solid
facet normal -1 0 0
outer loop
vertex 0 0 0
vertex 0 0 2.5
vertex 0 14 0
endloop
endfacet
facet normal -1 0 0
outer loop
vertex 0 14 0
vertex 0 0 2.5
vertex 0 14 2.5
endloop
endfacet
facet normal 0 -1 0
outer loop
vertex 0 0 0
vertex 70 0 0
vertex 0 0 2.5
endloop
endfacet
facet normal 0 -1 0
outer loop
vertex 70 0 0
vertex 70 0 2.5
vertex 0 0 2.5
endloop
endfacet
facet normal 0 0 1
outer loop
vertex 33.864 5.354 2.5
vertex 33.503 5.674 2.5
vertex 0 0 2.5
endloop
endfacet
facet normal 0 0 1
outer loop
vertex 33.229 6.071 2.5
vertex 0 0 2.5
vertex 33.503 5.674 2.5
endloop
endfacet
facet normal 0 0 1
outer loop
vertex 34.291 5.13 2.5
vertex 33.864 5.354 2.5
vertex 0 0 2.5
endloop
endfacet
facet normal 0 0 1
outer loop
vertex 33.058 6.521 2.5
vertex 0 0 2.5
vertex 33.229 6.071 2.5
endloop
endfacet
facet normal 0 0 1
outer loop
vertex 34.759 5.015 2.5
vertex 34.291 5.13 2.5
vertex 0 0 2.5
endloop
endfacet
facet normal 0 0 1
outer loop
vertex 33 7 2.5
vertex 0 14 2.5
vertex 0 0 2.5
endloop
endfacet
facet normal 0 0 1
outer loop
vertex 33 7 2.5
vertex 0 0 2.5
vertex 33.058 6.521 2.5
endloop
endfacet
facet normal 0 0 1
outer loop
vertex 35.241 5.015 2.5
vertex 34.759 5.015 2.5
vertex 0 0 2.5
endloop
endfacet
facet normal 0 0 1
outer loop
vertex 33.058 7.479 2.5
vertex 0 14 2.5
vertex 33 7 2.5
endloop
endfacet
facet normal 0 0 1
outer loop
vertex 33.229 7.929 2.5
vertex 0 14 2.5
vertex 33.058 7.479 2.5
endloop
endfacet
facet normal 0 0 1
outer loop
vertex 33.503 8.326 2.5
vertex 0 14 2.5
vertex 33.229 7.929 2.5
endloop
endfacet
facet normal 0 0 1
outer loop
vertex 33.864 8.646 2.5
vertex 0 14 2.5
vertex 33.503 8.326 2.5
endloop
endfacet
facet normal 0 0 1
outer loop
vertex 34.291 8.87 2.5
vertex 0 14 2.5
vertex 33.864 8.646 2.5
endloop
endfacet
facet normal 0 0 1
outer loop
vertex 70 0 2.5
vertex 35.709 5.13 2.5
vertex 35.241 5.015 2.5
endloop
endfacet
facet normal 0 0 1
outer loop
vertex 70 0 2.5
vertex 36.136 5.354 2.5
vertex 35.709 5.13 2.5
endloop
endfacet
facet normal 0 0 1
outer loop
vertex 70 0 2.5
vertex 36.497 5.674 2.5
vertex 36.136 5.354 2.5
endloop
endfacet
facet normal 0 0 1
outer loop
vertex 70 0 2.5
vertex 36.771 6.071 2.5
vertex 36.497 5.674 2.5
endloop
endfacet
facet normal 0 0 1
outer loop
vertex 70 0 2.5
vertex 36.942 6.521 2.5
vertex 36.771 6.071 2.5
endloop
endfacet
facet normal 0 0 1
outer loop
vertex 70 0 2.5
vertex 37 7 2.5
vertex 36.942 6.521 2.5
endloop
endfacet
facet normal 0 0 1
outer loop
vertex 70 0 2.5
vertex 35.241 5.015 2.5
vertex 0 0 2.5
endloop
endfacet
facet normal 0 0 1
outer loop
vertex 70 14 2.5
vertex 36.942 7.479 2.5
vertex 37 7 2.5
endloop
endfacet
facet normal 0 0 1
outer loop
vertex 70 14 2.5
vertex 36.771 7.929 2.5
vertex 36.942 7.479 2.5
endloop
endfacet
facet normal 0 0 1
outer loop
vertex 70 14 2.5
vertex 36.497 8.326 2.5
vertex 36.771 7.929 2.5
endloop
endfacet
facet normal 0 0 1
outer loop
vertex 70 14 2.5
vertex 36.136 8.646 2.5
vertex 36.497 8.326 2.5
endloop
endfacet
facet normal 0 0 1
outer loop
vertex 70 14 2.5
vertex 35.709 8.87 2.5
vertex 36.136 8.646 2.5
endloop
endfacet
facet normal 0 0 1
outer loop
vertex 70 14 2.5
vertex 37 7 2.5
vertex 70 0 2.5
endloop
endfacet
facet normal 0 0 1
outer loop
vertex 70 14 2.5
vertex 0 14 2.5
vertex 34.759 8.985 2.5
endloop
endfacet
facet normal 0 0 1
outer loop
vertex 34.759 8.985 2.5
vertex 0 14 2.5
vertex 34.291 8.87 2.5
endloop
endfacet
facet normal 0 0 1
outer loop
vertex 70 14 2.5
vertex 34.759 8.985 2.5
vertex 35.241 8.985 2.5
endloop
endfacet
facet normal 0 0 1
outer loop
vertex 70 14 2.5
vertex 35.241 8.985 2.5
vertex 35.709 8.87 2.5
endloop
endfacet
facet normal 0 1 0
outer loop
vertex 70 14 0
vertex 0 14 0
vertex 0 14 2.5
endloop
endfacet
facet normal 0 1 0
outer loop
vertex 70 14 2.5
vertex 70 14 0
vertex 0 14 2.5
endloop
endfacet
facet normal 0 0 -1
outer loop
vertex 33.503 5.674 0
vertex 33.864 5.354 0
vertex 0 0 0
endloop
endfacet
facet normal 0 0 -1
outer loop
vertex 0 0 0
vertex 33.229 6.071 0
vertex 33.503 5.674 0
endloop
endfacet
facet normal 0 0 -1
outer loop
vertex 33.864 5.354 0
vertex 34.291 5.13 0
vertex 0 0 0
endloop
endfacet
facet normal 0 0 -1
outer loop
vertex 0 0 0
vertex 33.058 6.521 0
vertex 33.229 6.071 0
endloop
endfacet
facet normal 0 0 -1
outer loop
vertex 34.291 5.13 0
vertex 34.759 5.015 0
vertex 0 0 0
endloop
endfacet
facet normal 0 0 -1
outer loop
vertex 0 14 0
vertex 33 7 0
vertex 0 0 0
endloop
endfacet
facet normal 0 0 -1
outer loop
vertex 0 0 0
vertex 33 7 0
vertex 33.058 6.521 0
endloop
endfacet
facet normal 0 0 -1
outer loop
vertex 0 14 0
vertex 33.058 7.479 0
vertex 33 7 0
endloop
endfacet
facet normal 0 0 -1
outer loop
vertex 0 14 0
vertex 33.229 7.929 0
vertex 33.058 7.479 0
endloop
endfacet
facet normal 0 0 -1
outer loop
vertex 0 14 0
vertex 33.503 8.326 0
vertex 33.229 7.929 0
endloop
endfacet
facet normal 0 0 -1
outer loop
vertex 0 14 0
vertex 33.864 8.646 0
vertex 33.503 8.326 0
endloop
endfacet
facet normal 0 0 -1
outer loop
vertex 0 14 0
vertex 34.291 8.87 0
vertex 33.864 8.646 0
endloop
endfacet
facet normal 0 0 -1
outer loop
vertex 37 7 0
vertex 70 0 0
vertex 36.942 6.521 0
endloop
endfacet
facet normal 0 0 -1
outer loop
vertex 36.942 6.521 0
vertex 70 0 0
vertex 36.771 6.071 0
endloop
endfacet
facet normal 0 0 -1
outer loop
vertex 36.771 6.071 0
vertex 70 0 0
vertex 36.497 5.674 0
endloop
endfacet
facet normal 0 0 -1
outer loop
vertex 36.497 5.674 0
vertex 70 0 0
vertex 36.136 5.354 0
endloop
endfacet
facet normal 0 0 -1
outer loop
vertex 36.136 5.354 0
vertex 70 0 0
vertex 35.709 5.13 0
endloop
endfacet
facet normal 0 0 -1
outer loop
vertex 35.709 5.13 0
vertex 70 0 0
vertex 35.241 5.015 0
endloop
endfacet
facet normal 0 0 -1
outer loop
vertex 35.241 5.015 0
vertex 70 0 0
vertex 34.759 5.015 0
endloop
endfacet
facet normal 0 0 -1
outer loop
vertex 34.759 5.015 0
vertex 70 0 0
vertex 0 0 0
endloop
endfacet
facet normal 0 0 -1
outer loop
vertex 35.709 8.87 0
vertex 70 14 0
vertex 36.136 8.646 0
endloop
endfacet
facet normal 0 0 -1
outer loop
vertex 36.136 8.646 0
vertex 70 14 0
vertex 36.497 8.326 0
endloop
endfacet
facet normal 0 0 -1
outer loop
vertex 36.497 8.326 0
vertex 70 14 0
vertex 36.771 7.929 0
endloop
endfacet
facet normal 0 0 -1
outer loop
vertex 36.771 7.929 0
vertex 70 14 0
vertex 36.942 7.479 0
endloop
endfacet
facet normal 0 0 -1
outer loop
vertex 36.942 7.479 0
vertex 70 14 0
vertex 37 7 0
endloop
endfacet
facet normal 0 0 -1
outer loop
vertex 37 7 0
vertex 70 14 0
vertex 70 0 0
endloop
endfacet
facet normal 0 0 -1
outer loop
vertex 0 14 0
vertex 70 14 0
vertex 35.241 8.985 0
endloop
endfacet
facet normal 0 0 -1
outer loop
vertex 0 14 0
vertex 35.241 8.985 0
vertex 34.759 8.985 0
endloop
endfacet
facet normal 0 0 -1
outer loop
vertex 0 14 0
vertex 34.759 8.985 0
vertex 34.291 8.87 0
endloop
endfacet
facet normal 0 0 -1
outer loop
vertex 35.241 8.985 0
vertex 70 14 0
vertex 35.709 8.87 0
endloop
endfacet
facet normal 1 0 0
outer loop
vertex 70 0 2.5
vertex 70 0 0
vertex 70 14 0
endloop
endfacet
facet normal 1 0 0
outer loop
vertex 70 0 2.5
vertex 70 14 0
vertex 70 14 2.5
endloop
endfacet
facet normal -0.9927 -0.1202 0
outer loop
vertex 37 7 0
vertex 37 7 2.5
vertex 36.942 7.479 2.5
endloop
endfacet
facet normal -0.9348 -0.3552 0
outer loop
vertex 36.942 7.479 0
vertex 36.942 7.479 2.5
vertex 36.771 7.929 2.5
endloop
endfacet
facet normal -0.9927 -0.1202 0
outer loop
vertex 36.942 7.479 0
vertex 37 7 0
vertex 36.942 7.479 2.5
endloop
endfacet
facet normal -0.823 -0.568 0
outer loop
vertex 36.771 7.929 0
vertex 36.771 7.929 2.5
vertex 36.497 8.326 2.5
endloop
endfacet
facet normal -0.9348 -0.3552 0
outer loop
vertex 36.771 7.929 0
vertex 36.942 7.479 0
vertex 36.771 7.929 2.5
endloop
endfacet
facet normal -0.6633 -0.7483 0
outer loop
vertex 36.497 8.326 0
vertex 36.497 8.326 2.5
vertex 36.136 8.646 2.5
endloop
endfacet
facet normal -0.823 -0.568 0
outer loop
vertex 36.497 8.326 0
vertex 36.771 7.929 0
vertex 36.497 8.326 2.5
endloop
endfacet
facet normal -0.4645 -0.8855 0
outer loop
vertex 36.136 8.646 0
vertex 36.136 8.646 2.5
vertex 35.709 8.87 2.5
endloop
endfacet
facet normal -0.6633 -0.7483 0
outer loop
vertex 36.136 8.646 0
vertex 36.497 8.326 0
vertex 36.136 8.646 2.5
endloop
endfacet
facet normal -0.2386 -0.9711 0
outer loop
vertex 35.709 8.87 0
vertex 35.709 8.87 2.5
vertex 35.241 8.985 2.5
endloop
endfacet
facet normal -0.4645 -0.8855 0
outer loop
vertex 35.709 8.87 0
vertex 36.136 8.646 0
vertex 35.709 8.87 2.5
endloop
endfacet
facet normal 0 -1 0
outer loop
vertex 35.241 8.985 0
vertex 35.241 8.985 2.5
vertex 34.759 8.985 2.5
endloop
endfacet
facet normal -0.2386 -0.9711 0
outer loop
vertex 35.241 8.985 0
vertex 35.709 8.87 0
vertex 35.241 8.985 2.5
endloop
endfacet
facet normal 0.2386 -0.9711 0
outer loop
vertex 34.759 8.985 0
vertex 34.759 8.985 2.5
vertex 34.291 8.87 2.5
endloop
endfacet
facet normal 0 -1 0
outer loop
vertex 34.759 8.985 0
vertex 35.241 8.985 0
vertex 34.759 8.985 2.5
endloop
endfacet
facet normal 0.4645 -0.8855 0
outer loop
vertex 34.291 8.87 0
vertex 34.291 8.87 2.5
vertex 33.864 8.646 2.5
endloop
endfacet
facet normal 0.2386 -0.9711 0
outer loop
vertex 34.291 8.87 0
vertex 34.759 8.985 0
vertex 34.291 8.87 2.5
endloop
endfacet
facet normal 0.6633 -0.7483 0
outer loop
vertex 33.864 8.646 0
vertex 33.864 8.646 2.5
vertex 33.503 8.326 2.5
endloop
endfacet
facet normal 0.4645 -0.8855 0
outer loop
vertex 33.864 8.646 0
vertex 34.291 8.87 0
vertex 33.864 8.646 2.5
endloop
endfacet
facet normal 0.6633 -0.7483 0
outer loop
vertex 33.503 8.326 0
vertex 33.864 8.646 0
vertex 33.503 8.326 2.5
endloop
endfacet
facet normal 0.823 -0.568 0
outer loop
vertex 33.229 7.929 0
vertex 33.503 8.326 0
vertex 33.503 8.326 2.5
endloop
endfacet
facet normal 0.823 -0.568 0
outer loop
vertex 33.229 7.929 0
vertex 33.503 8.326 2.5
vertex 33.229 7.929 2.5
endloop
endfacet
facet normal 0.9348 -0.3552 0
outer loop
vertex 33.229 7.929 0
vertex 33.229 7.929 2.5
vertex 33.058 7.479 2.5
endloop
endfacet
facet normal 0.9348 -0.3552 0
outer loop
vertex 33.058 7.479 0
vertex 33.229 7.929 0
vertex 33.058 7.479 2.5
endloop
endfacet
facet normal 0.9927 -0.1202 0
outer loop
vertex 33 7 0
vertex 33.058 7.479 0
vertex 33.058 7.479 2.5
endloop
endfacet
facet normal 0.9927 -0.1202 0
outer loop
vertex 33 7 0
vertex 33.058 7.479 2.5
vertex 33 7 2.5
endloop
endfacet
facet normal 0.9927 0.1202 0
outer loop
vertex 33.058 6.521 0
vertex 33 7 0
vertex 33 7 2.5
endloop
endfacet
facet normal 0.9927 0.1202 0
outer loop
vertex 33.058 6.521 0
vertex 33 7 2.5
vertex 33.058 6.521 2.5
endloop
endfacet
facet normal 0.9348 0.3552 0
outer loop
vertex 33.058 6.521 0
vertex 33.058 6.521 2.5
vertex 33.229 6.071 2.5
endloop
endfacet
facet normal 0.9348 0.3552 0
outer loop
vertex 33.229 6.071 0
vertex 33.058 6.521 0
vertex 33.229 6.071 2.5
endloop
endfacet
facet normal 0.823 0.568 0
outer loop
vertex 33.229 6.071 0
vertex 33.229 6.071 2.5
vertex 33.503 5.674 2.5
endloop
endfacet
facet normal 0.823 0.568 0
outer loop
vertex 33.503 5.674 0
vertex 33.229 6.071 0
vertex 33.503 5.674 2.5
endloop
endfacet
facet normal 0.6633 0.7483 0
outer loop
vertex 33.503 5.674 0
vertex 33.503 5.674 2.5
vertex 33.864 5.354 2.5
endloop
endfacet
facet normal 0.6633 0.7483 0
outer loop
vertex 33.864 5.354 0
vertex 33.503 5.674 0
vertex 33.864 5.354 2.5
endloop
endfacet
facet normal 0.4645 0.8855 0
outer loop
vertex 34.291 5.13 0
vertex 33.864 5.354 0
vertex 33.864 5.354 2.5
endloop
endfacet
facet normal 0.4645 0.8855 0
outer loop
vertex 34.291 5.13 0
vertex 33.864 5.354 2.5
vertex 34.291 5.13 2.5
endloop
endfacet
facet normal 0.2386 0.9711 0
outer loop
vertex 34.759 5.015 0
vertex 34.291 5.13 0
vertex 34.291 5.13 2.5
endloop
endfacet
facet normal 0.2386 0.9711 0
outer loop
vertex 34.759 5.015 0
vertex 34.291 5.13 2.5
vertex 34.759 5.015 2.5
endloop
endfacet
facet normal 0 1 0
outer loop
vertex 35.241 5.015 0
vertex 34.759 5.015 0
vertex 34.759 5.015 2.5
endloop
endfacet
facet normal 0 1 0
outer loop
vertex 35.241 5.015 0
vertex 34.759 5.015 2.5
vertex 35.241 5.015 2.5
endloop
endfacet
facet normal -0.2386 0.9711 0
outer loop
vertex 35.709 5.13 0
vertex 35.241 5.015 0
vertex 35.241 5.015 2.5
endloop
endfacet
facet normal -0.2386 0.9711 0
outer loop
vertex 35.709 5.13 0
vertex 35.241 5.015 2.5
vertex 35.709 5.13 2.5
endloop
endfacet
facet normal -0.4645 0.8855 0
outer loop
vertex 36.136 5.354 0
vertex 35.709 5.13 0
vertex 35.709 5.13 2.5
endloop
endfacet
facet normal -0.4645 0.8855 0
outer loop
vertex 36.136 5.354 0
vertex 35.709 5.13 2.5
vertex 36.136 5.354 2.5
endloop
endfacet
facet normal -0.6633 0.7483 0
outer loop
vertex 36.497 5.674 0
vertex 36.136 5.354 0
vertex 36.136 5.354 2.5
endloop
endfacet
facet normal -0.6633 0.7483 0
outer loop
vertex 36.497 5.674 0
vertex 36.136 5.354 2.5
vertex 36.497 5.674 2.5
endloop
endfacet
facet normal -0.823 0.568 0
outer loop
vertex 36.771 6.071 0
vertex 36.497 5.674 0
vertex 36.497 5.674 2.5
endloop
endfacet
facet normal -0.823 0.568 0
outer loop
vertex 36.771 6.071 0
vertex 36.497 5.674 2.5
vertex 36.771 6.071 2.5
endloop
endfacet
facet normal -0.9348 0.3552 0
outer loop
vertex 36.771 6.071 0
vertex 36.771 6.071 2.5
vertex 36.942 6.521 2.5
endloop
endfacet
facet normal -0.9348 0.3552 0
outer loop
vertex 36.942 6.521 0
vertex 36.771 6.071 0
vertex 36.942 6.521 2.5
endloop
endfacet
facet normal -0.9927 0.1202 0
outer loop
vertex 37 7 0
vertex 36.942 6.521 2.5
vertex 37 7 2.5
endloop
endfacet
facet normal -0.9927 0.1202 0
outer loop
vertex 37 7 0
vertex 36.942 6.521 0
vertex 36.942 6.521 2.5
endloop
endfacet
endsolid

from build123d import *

# Parameters (mm, degrees)
BOX_W          = 70
BOX_H          = 14
BOX_DEPTH      = 2.5
CYLINDER_R     = 2
CYLINDER_DEPTH = 3.5


with BuildPart() as part:
    # Box → Box (join)
    with BuildSketch(Plane.XY):
        with Locations((35, 7)):
            Rectangle(BOX_W, BOX_H)
    extrude(amount=BOX_DEPTH)

    # Cylinder → Cylinder (cut)
    with BuildSketch(Plane(origin=(35, 7, -1), x_dir=(1, 0, 0), z_dir=(0, 0, 1))):
        Circle(CYLINDER_R)
    extrude(amount=CYLINDER_DEPTH, mode=Mode.SUBTRACT)


solid = part.part
